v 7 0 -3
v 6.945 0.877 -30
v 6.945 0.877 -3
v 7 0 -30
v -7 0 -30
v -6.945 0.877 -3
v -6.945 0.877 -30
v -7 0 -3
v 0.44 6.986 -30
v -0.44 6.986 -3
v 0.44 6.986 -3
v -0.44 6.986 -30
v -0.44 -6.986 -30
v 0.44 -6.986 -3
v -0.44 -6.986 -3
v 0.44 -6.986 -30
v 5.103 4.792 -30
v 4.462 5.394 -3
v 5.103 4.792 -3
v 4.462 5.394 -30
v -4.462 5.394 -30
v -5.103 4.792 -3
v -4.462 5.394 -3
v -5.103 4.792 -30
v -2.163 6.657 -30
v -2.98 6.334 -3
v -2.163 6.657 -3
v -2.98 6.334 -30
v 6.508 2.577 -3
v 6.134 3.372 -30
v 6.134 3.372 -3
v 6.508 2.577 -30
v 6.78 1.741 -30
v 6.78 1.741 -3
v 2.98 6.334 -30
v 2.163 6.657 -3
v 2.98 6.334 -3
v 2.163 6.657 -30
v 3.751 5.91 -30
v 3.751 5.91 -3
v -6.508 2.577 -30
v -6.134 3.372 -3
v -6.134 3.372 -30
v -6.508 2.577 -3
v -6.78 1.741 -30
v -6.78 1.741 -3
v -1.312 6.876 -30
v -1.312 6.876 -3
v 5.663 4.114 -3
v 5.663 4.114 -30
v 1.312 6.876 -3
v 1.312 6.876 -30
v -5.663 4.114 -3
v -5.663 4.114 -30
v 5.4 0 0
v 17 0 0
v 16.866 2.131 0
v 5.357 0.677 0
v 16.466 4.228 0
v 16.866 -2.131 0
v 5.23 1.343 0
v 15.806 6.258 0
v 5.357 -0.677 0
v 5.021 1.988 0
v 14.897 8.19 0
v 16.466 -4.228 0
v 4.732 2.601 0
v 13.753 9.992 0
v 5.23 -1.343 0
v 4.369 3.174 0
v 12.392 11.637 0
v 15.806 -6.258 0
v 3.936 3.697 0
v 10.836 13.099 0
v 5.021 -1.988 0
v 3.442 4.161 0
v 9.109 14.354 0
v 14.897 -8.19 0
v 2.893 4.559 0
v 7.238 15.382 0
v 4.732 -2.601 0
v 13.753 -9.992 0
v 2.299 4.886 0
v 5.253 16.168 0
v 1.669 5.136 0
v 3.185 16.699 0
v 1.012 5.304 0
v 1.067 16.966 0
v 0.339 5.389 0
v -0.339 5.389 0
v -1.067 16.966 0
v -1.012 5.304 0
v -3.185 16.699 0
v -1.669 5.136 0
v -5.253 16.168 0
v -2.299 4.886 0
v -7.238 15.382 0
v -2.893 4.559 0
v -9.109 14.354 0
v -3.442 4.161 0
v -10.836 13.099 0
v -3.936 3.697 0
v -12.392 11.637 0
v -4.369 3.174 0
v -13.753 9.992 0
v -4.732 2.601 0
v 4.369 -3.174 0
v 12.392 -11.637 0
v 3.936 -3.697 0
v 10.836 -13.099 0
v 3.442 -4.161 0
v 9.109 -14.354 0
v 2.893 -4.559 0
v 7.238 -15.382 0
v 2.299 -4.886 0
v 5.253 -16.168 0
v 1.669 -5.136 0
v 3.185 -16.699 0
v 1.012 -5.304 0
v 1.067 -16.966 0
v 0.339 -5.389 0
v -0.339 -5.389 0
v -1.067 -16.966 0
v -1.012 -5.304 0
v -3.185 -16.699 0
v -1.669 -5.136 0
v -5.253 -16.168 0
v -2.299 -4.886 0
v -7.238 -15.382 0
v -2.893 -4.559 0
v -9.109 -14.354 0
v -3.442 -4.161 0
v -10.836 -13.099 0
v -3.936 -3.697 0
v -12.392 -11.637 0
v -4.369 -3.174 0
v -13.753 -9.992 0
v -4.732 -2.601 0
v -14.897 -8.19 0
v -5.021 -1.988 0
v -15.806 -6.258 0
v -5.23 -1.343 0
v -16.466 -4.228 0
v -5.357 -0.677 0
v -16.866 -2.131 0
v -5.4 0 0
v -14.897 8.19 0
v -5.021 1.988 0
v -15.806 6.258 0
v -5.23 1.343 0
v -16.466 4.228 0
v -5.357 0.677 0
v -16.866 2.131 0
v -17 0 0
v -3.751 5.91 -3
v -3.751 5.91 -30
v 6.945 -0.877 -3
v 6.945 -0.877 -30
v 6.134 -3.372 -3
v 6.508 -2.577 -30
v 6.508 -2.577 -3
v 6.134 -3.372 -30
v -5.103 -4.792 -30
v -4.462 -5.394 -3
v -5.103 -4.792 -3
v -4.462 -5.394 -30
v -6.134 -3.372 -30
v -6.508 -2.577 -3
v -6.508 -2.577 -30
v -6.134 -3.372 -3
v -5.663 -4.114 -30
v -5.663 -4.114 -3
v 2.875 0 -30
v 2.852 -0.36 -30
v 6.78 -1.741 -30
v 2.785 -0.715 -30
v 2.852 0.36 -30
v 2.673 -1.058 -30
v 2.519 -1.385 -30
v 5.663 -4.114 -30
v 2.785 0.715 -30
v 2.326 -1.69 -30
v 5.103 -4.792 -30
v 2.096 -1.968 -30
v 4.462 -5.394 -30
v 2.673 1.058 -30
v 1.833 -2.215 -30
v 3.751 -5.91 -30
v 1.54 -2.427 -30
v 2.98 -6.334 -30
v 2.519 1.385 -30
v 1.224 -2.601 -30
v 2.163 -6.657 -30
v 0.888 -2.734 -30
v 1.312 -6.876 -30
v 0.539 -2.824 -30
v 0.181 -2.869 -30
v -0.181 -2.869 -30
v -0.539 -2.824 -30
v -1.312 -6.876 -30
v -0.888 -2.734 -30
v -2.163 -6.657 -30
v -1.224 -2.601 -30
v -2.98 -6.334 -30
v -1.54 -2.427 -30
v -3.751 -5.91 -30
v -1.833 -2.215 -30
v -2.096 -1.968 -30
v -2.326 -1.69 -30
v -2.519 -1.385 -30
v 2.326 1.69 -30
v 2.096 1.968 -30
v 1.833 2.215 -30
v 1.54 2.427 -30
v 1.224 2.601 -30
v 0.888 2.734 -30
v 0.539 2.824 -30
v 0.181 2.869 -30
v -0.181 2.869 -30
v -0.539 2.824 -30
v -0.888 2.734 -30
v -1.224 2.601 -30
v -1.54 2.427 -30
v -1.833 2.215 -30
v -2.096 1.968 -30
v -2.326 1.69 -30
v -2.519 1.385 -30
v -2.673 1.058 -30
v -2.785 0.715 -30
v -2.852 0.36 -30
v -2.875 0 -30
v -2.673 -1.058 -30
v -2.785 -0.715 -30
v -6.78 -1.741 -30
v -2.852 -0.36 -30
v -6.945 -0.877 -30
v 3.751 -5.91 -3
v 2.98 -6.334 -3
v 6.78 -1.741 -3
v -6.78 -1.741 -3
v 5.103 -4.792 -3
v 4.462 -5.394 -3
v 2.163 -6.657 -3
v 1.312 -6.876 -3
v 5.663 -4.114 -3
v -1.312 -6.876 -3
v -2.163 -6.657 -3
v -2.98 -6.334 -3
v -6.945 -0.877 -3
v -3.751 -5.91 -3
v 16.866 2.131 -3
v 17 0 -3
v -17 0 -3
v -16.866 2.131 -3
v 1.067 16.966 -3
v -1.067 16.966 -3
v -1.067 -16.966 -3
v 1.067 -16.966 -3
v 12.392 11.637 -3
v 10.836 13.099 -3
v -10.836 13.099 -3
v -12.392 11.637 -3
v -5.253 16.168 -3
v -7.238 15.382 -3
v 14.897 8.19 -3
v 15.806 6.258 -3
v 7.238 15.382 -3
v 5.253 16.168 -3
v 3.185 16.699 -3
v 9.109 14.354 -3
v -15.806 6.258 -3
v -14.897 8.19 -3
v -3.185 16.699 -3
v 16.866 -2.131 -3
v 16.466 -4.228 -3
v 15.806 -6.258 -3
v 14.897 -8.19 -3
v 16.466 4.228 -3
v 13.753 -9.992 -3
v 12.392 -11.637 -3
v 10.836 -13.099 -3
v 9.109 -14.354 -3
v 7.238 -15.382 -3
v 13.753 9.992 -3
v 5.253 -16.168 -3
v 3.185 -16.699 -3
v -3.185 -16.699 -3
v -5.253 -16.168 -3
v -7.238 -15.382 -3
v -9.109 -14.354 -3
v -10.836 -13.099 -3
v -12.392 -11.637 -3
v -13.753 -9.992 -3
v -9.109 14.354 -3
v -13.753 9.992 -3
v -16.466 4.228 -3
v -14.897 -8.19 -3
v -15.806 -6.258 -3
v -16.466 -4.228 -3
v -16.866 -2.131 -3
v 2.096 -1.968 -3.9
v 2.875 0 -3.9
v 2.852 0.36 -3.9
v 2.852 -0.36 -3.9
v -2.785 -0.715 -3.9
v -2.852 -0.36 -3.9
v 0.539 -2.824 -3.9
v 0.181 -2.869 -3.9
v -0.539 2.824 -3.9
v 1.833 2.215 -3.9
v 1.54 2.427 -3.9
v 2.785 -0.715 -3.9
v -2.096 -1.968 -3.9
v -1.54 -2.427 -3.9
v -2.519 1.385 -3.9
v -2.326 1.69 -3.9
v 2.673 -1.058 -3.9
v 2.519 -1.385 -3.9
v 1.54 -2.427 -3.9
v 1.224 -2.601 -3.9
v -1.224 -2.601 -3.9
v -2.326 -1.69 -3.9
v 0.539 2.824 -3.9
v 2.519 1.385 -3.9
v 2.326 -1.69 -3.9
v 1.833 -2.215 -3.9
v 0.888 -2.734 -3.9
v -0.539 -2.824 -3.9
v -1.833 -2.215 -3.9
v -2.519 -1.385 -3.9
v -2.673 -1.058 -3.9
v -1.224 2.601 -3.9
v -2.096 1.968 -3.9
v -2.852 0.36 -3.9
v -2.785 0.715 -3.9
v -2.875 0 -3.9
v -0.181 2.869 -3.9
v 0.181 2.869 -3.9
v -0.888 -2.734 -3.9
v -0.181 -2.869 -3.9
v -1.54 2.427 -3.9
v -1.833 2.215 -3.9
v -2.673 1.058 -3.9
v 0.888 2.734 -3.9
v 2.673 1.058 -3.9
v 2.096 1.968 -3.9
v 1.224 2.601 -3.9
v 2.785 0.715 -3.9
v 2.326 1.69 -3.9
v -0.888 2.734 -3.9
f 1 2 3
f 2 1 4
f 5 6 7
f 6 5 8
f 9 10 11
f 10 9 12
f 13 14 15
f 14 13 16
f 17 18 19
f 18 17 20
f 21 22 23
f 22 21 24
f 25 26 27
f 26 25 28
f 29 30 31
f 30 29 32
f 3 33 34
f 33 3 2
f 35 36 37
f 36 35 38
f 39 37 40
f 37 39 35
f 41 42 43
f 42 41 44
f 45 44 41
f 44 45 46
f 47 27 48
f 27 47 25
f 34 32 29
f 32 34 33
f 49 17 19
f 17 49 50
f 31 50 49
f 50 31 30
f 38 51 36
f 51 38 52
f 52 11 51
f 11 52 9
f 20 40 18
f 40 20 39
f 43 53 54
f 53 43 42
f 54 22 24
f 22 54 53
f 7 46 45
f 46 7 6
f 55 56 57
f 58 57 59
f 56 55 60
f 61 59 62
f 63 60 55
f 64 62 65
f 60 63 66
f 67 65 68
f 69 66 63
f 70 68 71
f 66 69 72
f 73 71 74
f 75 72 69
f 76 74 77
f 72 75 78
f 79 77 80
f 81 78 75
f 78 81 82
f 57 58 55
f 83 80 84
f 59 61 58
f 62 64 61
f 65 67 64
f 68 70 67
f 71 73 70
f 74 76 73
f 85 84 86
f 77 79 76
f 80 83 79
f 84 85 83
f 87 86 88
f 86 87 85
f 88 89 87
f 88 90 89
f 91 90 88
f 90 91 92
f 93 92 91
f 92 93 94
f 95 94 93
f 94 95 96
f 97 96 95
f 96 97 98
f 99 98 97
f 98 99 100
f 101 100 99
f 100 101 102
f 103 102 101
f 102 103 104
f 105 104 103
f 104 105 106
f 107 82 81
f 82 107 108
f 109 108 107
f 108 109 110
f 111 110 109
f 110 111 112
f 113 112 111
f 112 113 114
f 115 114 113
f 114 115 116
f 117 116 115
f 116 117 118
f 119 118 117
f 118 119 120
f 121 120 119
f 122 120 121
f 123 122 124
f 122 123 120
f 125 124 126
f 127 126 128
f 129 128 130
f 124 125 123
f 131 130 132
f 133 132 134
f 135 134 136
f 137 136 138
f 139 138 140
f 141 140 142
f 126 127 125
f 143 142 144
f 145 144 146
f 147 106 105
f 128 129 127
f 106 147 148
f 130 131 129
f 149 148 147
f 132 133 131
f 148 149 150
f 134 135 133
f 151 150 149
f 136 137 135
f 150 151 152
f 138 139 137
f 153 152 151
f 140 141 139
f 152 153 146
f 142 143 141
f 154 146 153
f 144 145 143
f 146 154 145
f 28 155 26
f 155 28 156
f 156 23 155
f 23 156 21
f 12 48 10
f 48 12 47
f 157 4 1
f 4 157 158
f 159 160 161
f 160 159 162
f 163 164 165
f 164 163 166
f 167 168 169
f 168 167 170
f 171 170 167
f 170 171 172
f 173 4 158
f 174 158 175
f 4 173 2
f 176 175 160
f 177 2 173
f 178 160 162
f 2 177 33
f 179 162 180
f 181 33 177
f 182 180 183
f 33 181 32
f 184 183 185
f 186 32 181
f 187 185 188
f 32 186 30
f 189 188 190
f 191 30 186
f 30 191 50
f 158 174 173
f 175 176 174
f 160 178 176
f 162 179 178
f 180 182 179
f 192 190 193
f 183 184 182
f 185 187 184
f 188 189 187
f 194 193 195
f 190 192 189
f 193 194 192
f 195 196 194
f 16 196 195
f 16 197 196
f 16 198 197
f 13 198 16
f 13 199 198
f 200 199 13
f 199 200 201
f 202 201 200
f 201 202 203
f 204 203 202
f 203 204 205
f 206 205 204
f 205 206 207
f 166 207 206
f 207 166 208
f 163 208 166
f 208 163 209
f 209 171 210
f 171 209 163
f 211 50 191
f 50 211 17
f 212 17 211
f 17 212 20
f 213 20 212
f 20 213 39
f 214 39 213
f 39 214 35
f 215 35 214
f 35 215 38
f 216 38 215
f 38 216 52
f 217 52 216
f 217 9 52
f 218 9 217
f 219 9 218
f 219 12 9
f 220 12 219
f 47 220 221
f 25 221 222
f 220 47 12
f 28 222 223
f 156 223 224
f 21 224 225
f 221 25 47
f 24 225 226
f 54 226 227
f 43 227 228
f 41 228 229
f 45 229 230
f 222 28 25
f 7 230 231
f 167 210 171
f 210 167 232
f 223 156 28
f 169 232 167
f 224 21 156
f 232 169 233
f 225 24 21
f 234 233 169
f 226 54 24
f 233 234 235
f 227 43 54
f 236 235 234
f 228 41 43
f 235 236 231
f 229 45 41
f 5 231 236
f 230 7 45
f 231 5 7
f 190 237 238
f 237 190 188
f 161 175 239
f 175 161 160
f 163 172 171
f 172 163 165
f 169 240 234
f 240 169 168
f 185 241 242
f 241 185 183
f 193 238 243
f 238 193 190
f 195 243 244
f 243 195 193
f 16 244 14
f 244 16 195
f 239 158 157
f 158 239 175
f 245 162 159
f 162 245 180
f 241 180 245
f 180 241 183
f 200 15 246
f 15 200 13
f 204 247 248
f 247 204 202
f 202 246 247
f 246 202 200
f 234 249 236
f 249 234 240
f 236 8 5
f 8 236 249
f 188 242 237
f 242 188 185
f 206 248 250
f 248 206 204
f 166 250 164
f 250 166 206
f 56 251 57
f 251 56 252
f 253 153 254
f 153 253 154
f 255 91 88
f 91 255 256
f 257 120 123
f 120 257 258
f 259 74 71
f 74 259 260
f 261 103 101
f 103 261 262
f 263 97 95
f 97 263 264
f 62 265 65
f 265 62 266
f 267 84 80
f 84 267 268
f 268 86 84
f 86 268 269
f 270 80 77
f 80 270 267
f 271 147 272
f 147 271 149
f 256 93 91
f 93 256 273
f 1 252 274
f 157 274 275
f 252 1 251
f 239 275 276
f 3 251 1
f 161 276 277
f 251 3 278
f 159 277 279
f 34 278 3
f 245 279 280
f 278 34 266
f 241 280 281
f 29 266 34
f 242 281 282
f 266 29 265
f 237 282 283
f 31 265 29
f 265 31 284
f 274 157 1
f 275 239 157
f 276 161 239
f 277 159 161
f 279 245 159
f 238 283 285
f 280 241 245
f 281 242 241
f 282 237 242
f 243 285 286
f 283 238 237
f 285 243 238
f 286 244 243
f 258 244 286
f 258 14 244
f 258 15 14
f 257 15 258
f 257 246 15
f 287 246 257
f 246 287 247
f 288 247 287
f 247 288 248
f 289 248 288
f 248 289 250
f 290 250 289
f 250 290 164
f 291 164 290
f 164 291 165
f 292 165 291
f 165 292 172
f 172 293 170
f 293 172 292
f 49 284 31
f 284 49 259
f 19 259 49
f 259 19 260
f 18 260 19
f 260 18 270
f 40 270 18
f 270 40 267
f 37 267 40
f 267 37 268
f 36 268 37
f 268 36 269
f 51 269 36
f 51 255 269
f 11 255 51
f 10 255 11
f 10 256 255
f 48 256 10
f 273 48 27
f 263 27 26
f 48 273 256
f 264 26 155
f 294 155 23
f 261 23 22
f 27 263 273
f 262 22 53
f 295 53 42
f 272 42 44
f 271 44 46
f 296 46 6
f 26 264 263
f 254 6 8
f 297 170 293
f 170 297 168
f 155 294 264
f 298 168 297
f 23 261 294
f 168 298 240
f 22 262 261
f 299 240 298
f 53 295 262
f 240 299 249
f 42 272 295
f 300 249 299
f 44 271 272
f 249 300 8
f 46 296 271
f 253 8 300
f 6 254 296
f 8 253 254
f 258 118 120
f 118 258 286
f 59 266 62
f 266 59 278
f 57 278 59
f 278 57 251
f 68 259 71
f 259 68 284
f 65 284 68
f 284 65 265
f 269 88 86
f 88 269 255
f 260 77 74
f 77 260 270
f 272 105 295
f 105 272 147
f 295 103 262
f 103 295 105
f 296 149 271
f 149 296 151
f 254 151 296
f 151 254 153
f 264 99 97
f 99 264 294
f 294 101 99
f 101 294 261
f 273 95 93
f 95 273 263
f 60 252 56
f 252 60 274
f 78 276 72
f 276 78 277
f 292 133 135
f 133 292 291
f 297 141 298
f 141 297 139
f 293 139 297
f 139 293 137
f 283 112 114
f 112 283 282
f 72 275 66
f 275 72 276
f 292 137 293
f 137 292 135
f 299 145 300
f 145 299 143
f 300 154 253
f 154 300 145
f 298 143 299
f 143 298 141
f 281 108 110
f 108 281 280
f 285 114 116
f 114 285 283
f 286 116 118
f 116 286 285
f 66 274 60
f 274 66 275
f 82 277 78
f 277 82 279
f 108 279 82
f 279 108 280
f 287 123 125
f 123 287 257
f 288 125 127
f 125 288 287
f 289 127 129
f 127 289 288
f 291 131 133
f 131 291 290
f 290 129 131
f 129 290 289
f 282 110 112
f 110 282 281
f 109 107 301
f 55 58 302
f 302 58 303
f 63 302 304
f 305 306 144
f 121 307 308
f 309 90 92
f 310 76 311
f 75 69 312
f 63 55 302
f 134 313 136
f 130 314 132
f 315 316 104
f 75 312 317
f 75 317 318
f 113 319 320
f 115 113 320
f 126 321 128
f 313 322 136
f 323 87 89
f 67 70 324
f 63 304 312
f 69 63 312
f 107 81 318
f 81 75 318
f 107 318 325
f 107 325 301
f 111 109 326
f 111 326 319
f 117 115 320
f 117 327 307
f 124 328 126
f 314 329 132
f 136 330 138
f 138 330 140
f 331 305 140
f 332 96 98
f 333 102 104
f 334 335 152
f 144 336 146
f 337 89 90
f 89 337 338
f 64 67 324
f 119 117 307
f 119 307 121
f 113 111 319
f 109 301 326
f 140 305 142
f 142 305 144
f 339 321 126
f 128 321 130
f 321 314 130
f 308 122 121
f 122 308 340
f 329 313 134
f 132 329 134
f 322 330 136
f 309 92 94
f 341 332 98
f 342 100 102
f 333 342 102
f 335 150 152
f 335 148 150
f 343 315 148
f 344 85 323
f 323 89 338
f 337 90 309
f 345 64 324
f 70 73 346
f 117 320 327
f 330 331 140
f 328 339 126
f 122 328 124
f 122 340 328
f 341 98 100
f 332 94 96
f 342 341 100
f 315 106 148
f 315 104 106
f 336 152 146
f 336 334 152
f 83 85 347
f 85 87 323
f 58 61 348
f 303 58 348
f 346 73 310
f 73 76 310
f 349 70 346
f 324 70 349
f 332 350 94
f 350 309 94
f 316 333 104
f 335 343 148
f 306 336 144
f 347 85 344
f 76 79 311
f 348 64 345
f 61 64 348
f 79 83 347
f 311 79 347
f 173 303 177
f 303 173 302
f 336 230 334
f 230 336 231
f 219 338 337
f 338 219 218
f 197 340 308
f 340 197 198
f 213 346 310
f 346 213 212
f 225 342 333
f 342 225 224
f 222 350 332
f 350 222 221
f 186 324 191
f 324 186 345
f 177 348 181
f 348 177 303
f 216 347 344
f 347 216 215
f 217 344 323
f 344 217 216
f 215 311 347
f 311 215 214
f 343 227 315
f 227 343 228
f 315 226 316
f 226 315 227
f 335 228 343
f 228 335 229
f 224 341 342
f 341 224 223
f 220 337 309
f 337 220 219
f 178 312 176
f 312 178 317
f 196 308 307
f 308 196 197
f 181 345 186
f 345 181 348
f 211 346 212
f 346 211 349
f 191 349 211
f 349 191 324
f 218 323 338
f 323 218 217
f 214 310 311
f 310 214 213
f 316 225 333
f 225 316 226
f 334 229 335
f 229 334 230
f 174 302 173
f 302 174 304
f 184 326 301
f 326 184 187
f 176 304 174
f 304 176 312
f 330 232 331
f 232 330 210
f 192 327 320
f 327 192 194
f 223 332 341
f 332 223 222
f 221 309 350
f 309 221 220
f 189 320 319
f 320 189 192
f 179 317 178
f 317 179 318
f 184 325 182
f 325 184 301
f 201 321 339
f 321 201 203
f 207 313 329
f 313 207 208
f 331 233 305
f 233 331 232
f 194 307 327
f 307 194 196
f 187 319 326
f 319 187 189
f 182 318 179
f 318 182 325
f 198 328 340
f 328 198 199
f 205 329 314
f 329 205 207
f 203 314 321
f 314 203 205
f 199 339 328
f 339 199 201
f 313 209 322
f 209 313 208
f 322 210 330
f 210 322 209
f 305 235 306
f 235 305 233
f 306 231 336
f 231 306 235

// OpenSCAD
$fn = 50;


difference() {
	union() {
		translate(v = [0, 0, -30.0000000000]) {
			cylinder(h = 30, r = 7.0000000000);
		}
		translate(v = [0, 0, -3.0000000000]) {
			cylinder(h = 3, r = 17.0000000000);
		}
	}
	union() {
		translate(v = [0, 0, 0]) {
			rotate(a = [0, 0, 0]) {
				difference() {
					union() {
						#translate(v = [0, 0, -30.0000000000]) {
							cylinder(h = 30, r = 2.6000000000);
						}
						#translate(v = [0, 0, -3.9000000000]) {
							cylinder(h = 3.9000000000, r1 = 2.8750000000, r2 = 5.4000000000);
						}
						#translate(v = [0, 0, -30.0000000000]) {
							cylinder(h = 30, r = 2.8750000000);
						}
						#translate(v = [0, 0, -30.0000000000]) {
							cylinder(h = 30, r = 2.6000000000);
						}
					}
					union();
				}
			}
		}
	}
}
